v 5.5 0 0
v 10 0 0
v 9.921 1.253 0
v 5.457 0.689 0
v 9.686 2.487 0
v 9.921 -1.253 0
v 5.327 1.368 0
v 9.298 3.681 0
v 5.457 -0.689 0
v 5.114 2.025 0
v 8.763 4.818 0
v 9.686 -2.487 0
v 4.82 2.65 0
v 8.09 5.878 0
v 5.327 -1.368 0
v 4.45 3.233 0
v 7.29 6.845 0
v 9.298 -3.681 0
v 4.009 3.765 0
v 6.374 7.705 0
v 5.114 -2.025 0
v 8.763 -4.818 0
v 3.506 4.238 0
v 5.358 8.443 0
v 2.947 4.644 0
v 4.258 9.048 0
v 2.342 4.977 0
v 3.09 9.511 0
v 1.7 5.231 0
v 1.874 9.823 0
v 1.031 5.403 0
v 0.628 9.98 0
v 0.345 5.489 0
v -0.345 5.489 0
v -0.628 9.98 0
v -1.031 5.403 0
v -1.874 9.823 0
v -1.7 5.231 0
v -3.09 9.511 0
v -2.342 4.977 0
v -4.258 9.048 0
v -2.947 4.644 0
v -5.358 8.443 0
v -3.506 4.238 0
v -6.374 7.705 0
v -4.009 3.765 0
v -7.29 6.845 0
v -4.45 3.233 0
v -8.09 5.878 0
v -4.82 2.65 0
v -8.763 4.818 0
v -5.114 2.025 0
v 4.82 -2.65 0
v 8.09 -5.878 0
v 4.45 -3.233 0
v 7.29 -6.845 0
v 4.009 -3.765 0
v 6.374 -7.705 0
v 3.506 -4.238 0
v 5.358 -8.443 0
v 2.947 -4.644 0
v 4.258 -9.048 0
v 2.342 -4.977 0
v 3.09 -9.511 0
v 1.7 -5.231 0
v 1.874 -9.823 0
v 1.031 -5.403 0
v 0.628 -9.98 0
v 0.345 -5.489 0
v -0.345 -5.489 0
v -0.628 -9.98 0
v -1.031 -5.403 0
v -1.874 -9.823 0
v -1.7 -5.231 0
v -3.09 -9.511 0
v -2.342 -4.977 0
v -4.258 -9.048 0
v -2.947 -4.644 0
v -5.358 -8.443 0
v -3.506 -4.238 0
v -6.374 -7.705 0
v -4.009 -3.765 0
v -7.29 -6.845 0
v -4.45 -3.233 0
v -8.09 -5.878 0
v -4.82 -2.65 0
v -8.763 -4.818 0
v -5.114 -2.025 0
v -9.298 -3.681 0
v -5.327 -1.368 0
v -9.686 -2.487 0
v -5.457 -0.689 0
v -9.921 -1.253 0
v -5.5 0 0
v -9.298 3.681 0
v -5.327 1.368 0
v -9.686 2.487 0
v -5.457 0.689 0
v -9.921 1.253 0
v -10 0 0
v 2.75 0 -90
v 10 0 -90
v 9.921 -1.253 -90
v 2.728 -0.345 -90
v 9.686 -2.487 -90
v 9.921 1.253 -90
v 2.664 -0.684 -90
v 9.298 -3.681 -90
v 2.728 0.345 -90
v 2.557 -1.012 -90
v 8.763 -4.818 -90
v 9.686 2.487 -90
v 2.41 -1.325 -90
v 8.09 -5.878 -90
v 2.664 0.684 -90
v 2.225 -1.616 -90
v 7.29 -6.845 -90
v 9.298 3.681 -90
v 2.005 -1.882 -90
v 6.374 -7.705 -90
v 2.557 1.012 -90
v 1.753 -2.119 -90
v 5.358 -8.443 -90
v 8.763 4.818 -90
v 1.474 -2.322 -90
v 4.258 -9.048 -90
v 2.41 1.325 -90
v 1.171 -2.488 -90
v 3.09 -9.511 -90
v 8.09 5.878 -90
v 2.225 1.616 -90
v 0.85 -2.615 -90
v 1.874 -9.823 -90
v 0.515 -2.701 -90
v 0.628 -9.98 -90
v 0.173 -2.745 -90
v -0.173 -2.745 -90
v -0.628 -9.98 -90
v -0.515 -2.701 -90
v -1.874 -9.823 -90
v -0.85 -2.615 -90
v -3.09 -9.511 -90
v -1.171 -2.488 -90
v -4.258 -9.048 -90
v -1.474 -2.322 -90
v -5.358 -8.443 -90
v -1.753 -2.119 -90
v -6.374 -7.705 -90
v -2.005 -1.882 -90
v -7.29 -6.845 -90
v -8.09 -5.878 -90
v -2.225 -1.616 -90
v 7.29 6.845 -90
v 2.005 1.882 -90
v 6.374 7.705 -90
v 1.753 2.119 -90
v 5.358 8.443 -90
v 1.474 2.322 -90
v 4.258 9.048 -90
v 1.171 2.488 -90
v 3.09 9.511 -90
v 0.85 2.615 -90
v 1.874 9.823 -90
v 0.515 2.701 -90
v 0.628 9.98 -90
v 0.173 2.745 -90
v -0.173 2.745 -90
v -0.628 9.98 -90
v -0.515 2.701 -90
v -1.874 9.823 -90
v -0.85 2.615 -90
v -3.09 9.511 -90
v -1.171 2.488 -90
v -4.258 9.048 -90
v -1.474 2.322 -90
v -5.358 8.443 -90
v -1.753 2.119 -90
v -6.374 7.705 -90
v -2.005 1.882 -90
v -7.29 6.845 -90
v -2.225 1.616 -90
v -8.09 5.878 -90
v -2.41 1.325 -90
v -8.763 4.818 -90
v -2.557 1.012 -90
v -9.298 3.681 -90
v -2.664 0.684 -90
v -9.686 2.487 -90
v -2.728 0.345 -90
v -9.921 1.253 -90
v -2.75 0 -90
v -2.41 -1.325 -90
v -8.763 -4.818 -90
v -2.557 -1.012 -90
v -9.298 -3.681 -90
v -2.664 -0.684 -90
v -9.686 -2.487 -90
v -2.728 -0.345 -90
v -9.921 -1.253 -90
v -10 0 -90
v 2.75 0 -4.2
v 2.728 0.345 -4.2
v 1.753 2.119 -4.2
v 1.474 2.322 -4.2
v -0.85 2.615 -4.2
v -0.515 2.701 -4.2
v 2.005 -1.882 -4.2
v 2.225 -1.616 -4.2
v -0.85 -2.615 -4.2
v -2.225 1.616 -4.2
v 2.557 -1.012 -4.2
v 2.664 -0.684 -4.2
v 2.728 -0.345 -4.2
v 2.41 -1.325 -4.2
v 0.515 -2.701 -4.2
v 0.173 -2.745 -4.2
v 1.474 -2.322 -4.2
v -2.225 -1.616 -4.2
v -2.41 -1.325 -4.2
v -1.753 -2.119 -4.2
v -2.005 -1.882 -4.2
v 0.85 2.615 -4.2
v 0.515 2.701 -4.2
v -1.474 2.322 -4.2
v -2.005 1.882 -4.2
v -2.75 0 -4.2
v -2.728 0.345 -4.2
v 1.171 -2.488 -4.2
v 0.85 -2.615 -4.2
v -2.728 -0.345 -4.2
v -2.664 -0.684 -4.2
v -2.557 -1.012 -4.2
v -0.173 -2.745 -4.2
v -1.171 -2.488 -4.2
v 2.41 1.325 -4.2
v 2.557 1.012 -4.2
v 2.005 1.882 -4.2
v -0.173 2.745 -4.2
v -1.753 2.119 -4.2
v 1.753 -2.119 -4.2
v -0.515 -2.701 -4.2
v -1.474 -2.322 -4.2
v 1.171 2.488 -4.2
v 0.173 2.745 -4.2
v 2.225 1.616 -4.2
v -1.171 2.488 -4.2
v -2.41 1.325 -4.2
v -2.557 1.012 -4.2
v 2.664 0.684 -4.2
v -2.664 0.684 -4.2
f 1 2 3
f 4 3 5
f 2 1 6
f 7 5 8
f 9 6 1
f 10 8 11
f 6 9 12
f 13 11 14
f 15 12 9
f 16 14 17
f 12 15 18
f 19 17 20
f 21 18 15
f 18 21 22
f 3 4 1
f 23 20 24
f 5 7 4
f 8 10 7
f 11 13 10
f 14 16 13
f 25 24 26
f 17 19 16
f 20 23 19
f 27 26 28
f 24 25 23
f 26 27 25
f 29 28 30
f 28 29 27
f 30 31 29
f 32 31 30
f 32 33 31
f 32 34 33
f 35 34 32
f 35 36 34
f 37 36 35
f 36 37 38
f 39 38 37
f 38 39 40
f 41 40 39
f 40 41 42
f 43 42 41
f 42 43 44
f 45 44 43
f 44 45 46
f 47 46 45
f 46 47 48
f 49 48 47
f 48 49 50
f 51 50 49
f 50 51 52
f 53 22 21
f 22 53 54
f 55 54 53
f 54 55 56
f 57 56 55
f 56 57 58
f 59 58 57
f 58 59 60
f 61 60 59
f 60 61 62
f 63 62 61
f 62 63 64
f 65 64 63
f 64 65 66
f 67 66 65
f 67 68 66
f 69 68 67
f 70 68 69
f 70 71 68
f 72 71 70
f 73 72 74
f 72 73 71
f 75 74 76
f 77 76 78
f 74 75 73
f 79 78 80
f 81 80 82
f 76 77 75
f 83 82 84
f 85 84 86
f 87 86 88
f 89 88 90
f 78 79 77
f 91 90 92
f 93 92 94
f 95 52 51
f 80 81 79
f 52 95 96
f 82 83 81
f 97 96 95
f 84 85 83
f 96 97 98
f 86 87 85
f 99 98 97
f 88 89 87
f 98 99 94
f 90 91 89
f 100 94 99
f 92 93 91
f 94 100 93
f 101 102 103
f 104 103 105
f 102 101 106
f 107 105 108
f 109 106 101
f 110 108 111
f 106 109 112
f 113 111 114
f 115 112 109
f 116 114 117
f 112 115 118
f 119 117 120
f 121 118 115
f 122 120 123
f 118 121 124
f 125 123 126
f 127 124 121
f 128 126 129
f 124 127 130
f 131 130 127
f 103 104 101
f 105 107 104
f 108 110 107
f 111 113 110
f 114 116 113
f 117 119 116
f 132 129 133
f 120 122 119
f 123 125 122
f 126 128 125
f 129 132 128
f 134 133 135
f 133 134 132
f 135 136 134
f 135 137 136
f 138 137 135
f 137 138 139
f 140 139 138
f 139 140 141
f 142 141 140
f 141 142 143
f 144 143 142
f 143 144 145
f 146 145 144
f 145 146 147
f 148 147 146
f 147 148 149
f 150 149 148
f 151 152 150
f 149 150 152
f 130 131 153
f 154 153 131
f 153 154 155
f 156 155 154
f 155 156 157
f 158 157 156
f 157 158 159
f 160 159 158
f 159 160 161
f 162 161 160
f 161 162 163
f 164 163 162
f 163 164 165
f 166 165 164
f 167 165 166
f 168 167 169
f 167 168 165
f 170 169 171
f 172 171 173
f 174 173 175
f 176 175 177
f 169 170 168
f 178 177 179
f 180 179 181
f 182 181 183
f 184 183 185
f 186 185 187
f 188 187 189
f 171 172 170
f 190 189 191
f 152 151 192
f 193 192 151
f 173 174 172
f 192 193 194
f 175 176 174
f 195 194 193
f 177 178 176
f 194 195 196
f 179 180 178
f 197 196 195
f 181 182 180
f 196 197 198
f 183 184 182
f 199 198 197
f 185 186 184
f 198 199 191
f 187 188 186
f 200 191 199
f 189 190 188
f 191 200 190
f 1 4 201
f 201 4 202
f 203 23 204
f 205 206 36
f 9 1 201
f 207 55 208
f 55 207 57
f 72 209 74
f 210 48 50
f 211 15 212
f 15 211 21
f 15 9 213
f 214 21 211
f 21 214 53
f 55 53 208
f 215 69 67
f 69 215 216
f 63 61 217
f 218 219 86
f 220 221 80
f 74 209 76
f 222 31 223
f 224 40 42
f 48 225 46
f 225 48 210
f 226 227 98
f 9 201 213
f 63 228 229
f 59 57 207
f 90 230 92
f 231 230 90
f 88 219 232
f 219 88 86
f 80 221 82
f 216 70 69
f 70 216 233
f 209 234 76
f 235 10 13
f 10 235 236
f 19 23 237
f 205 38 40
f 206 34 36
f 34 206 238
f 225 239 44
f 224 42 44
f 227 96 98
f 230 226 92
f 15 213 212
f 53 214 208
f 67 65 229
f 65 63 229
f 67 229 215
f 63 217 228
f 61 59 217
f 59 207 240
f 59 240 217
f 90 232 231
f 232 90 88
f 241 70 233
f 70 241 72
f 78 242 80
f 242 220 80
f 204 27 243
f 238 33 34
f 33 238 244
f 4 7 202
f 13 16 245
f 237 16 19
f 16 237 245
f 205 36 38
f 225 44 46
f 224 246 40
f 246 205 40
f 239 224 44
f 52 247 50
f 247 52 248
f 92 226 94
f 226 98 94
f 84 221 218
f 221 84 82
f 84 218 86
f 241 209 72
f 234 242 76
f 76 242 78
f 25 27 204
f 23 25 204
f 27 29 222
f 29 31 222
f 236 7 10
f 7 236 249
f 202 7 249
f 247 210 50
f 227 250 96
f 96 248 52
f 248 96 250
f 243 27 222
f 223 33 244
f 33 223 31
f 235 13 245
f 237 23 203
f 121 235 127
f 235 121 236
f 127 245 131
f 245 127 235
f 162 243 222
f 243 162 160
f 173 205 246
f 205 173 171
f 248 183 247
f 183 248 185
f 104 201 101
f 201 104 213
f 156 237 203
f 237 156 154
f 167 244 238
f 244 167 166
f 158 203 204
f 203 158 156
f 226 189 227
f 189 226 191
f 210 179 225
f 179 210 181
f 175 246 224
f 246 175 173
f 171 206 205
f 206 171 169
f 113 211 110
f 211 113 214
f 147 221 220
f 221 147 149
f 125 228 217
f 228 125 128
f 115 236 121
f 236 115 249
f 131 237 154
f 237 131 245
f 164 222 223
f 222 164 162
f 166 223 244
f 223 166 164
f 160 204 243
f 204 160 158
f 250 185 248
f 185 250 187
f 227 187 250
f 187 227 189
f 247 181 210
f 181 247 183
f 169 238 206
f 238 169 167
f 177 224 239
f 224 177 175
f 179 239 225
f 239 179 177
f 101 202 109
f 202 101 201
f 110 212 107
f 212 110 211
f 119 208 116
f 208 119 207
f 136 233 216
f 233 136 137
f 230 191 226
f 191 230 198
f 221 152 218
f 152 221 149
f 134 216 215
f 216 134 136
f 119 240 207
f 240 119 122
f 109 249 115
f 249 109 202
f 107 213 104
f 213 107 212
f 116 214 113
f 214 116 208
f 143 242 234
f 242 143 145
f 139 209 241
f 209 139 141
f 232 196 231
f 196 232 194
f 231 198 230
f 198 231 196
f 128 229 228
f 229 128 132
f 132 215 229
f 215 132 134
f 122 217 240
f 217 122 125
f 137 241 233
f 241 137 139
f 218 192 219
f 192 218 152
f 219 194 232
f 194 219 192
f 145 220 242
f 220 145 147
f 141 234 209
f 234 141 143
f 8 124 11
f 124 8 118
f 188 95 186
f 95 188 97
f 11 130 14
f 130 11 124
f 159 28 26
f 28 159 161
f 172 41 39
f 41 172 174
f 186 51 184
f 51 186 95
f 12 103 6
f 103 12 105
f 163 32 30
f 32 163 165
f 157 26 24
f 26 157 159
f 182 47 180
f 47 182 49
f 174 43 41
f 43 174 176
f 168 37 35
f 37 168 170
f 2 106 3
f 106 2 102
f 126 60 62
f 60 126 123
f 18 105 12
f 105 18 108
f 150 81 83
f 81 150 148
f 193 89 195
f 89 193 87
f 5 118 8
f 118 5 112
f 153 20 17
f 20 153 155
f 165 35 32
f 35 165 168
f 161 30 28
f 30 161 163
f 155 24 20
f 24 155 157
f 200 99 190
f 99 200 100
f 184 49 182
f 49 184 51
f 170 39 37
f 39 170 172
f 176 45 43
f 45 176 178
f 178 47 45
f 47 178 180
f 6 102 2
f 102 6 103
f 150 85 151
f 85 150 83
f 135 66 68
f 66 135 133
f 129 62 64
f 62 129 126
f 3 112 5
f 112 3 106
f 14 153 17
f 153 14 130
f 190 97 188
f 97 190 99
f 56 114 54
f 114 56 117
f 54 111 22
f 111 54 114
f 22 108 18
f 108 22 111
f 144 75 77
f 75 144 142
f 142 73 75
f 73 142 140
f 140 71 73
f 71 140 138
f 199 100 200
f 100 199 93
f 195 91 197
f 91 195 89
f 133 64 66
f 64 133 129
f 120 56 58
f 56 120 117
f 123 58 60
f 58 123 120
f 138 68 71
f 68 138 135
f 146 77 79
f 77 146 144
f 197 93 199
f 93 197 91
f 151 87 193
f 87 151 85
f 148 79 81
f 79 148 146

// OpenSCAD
$fn = 50;


difference() {
	union() {
		translate(v = [0, 0, -90.0000000000]) {
			cylinder(h = 90, r = 10.0000000000);
		}
		cylinder(h = 0, r = 16.0000000000);
	}
	union() {
		translate(v = [0, 0, 0]) {
			rotate(a = [0, 0, 0]) {
				difference() {
					union() {
						#translate(v = [0, 0, -90.0000000000]) {
							cylinder(h = 90, r = 2.2500000000);
						}
						#translate(v = [0, 0, -4.2000000000]) {
							cylinder(h = 4.2000000000, r = 10.0000000000, r1 = 2.7500000000, r2 = 5.5000000000);
						}
						#translate(v = [0, 0, -90.0000000000]) {
							cylinder(h = 90, r = 2.7500000000);
						}
						#translate(v = [0, 0, -90.0000000000]) {
							cylinder(h = 90, r = 2.2500000000);
						}
					}
					union();
				}
			}
		}
	}
}
